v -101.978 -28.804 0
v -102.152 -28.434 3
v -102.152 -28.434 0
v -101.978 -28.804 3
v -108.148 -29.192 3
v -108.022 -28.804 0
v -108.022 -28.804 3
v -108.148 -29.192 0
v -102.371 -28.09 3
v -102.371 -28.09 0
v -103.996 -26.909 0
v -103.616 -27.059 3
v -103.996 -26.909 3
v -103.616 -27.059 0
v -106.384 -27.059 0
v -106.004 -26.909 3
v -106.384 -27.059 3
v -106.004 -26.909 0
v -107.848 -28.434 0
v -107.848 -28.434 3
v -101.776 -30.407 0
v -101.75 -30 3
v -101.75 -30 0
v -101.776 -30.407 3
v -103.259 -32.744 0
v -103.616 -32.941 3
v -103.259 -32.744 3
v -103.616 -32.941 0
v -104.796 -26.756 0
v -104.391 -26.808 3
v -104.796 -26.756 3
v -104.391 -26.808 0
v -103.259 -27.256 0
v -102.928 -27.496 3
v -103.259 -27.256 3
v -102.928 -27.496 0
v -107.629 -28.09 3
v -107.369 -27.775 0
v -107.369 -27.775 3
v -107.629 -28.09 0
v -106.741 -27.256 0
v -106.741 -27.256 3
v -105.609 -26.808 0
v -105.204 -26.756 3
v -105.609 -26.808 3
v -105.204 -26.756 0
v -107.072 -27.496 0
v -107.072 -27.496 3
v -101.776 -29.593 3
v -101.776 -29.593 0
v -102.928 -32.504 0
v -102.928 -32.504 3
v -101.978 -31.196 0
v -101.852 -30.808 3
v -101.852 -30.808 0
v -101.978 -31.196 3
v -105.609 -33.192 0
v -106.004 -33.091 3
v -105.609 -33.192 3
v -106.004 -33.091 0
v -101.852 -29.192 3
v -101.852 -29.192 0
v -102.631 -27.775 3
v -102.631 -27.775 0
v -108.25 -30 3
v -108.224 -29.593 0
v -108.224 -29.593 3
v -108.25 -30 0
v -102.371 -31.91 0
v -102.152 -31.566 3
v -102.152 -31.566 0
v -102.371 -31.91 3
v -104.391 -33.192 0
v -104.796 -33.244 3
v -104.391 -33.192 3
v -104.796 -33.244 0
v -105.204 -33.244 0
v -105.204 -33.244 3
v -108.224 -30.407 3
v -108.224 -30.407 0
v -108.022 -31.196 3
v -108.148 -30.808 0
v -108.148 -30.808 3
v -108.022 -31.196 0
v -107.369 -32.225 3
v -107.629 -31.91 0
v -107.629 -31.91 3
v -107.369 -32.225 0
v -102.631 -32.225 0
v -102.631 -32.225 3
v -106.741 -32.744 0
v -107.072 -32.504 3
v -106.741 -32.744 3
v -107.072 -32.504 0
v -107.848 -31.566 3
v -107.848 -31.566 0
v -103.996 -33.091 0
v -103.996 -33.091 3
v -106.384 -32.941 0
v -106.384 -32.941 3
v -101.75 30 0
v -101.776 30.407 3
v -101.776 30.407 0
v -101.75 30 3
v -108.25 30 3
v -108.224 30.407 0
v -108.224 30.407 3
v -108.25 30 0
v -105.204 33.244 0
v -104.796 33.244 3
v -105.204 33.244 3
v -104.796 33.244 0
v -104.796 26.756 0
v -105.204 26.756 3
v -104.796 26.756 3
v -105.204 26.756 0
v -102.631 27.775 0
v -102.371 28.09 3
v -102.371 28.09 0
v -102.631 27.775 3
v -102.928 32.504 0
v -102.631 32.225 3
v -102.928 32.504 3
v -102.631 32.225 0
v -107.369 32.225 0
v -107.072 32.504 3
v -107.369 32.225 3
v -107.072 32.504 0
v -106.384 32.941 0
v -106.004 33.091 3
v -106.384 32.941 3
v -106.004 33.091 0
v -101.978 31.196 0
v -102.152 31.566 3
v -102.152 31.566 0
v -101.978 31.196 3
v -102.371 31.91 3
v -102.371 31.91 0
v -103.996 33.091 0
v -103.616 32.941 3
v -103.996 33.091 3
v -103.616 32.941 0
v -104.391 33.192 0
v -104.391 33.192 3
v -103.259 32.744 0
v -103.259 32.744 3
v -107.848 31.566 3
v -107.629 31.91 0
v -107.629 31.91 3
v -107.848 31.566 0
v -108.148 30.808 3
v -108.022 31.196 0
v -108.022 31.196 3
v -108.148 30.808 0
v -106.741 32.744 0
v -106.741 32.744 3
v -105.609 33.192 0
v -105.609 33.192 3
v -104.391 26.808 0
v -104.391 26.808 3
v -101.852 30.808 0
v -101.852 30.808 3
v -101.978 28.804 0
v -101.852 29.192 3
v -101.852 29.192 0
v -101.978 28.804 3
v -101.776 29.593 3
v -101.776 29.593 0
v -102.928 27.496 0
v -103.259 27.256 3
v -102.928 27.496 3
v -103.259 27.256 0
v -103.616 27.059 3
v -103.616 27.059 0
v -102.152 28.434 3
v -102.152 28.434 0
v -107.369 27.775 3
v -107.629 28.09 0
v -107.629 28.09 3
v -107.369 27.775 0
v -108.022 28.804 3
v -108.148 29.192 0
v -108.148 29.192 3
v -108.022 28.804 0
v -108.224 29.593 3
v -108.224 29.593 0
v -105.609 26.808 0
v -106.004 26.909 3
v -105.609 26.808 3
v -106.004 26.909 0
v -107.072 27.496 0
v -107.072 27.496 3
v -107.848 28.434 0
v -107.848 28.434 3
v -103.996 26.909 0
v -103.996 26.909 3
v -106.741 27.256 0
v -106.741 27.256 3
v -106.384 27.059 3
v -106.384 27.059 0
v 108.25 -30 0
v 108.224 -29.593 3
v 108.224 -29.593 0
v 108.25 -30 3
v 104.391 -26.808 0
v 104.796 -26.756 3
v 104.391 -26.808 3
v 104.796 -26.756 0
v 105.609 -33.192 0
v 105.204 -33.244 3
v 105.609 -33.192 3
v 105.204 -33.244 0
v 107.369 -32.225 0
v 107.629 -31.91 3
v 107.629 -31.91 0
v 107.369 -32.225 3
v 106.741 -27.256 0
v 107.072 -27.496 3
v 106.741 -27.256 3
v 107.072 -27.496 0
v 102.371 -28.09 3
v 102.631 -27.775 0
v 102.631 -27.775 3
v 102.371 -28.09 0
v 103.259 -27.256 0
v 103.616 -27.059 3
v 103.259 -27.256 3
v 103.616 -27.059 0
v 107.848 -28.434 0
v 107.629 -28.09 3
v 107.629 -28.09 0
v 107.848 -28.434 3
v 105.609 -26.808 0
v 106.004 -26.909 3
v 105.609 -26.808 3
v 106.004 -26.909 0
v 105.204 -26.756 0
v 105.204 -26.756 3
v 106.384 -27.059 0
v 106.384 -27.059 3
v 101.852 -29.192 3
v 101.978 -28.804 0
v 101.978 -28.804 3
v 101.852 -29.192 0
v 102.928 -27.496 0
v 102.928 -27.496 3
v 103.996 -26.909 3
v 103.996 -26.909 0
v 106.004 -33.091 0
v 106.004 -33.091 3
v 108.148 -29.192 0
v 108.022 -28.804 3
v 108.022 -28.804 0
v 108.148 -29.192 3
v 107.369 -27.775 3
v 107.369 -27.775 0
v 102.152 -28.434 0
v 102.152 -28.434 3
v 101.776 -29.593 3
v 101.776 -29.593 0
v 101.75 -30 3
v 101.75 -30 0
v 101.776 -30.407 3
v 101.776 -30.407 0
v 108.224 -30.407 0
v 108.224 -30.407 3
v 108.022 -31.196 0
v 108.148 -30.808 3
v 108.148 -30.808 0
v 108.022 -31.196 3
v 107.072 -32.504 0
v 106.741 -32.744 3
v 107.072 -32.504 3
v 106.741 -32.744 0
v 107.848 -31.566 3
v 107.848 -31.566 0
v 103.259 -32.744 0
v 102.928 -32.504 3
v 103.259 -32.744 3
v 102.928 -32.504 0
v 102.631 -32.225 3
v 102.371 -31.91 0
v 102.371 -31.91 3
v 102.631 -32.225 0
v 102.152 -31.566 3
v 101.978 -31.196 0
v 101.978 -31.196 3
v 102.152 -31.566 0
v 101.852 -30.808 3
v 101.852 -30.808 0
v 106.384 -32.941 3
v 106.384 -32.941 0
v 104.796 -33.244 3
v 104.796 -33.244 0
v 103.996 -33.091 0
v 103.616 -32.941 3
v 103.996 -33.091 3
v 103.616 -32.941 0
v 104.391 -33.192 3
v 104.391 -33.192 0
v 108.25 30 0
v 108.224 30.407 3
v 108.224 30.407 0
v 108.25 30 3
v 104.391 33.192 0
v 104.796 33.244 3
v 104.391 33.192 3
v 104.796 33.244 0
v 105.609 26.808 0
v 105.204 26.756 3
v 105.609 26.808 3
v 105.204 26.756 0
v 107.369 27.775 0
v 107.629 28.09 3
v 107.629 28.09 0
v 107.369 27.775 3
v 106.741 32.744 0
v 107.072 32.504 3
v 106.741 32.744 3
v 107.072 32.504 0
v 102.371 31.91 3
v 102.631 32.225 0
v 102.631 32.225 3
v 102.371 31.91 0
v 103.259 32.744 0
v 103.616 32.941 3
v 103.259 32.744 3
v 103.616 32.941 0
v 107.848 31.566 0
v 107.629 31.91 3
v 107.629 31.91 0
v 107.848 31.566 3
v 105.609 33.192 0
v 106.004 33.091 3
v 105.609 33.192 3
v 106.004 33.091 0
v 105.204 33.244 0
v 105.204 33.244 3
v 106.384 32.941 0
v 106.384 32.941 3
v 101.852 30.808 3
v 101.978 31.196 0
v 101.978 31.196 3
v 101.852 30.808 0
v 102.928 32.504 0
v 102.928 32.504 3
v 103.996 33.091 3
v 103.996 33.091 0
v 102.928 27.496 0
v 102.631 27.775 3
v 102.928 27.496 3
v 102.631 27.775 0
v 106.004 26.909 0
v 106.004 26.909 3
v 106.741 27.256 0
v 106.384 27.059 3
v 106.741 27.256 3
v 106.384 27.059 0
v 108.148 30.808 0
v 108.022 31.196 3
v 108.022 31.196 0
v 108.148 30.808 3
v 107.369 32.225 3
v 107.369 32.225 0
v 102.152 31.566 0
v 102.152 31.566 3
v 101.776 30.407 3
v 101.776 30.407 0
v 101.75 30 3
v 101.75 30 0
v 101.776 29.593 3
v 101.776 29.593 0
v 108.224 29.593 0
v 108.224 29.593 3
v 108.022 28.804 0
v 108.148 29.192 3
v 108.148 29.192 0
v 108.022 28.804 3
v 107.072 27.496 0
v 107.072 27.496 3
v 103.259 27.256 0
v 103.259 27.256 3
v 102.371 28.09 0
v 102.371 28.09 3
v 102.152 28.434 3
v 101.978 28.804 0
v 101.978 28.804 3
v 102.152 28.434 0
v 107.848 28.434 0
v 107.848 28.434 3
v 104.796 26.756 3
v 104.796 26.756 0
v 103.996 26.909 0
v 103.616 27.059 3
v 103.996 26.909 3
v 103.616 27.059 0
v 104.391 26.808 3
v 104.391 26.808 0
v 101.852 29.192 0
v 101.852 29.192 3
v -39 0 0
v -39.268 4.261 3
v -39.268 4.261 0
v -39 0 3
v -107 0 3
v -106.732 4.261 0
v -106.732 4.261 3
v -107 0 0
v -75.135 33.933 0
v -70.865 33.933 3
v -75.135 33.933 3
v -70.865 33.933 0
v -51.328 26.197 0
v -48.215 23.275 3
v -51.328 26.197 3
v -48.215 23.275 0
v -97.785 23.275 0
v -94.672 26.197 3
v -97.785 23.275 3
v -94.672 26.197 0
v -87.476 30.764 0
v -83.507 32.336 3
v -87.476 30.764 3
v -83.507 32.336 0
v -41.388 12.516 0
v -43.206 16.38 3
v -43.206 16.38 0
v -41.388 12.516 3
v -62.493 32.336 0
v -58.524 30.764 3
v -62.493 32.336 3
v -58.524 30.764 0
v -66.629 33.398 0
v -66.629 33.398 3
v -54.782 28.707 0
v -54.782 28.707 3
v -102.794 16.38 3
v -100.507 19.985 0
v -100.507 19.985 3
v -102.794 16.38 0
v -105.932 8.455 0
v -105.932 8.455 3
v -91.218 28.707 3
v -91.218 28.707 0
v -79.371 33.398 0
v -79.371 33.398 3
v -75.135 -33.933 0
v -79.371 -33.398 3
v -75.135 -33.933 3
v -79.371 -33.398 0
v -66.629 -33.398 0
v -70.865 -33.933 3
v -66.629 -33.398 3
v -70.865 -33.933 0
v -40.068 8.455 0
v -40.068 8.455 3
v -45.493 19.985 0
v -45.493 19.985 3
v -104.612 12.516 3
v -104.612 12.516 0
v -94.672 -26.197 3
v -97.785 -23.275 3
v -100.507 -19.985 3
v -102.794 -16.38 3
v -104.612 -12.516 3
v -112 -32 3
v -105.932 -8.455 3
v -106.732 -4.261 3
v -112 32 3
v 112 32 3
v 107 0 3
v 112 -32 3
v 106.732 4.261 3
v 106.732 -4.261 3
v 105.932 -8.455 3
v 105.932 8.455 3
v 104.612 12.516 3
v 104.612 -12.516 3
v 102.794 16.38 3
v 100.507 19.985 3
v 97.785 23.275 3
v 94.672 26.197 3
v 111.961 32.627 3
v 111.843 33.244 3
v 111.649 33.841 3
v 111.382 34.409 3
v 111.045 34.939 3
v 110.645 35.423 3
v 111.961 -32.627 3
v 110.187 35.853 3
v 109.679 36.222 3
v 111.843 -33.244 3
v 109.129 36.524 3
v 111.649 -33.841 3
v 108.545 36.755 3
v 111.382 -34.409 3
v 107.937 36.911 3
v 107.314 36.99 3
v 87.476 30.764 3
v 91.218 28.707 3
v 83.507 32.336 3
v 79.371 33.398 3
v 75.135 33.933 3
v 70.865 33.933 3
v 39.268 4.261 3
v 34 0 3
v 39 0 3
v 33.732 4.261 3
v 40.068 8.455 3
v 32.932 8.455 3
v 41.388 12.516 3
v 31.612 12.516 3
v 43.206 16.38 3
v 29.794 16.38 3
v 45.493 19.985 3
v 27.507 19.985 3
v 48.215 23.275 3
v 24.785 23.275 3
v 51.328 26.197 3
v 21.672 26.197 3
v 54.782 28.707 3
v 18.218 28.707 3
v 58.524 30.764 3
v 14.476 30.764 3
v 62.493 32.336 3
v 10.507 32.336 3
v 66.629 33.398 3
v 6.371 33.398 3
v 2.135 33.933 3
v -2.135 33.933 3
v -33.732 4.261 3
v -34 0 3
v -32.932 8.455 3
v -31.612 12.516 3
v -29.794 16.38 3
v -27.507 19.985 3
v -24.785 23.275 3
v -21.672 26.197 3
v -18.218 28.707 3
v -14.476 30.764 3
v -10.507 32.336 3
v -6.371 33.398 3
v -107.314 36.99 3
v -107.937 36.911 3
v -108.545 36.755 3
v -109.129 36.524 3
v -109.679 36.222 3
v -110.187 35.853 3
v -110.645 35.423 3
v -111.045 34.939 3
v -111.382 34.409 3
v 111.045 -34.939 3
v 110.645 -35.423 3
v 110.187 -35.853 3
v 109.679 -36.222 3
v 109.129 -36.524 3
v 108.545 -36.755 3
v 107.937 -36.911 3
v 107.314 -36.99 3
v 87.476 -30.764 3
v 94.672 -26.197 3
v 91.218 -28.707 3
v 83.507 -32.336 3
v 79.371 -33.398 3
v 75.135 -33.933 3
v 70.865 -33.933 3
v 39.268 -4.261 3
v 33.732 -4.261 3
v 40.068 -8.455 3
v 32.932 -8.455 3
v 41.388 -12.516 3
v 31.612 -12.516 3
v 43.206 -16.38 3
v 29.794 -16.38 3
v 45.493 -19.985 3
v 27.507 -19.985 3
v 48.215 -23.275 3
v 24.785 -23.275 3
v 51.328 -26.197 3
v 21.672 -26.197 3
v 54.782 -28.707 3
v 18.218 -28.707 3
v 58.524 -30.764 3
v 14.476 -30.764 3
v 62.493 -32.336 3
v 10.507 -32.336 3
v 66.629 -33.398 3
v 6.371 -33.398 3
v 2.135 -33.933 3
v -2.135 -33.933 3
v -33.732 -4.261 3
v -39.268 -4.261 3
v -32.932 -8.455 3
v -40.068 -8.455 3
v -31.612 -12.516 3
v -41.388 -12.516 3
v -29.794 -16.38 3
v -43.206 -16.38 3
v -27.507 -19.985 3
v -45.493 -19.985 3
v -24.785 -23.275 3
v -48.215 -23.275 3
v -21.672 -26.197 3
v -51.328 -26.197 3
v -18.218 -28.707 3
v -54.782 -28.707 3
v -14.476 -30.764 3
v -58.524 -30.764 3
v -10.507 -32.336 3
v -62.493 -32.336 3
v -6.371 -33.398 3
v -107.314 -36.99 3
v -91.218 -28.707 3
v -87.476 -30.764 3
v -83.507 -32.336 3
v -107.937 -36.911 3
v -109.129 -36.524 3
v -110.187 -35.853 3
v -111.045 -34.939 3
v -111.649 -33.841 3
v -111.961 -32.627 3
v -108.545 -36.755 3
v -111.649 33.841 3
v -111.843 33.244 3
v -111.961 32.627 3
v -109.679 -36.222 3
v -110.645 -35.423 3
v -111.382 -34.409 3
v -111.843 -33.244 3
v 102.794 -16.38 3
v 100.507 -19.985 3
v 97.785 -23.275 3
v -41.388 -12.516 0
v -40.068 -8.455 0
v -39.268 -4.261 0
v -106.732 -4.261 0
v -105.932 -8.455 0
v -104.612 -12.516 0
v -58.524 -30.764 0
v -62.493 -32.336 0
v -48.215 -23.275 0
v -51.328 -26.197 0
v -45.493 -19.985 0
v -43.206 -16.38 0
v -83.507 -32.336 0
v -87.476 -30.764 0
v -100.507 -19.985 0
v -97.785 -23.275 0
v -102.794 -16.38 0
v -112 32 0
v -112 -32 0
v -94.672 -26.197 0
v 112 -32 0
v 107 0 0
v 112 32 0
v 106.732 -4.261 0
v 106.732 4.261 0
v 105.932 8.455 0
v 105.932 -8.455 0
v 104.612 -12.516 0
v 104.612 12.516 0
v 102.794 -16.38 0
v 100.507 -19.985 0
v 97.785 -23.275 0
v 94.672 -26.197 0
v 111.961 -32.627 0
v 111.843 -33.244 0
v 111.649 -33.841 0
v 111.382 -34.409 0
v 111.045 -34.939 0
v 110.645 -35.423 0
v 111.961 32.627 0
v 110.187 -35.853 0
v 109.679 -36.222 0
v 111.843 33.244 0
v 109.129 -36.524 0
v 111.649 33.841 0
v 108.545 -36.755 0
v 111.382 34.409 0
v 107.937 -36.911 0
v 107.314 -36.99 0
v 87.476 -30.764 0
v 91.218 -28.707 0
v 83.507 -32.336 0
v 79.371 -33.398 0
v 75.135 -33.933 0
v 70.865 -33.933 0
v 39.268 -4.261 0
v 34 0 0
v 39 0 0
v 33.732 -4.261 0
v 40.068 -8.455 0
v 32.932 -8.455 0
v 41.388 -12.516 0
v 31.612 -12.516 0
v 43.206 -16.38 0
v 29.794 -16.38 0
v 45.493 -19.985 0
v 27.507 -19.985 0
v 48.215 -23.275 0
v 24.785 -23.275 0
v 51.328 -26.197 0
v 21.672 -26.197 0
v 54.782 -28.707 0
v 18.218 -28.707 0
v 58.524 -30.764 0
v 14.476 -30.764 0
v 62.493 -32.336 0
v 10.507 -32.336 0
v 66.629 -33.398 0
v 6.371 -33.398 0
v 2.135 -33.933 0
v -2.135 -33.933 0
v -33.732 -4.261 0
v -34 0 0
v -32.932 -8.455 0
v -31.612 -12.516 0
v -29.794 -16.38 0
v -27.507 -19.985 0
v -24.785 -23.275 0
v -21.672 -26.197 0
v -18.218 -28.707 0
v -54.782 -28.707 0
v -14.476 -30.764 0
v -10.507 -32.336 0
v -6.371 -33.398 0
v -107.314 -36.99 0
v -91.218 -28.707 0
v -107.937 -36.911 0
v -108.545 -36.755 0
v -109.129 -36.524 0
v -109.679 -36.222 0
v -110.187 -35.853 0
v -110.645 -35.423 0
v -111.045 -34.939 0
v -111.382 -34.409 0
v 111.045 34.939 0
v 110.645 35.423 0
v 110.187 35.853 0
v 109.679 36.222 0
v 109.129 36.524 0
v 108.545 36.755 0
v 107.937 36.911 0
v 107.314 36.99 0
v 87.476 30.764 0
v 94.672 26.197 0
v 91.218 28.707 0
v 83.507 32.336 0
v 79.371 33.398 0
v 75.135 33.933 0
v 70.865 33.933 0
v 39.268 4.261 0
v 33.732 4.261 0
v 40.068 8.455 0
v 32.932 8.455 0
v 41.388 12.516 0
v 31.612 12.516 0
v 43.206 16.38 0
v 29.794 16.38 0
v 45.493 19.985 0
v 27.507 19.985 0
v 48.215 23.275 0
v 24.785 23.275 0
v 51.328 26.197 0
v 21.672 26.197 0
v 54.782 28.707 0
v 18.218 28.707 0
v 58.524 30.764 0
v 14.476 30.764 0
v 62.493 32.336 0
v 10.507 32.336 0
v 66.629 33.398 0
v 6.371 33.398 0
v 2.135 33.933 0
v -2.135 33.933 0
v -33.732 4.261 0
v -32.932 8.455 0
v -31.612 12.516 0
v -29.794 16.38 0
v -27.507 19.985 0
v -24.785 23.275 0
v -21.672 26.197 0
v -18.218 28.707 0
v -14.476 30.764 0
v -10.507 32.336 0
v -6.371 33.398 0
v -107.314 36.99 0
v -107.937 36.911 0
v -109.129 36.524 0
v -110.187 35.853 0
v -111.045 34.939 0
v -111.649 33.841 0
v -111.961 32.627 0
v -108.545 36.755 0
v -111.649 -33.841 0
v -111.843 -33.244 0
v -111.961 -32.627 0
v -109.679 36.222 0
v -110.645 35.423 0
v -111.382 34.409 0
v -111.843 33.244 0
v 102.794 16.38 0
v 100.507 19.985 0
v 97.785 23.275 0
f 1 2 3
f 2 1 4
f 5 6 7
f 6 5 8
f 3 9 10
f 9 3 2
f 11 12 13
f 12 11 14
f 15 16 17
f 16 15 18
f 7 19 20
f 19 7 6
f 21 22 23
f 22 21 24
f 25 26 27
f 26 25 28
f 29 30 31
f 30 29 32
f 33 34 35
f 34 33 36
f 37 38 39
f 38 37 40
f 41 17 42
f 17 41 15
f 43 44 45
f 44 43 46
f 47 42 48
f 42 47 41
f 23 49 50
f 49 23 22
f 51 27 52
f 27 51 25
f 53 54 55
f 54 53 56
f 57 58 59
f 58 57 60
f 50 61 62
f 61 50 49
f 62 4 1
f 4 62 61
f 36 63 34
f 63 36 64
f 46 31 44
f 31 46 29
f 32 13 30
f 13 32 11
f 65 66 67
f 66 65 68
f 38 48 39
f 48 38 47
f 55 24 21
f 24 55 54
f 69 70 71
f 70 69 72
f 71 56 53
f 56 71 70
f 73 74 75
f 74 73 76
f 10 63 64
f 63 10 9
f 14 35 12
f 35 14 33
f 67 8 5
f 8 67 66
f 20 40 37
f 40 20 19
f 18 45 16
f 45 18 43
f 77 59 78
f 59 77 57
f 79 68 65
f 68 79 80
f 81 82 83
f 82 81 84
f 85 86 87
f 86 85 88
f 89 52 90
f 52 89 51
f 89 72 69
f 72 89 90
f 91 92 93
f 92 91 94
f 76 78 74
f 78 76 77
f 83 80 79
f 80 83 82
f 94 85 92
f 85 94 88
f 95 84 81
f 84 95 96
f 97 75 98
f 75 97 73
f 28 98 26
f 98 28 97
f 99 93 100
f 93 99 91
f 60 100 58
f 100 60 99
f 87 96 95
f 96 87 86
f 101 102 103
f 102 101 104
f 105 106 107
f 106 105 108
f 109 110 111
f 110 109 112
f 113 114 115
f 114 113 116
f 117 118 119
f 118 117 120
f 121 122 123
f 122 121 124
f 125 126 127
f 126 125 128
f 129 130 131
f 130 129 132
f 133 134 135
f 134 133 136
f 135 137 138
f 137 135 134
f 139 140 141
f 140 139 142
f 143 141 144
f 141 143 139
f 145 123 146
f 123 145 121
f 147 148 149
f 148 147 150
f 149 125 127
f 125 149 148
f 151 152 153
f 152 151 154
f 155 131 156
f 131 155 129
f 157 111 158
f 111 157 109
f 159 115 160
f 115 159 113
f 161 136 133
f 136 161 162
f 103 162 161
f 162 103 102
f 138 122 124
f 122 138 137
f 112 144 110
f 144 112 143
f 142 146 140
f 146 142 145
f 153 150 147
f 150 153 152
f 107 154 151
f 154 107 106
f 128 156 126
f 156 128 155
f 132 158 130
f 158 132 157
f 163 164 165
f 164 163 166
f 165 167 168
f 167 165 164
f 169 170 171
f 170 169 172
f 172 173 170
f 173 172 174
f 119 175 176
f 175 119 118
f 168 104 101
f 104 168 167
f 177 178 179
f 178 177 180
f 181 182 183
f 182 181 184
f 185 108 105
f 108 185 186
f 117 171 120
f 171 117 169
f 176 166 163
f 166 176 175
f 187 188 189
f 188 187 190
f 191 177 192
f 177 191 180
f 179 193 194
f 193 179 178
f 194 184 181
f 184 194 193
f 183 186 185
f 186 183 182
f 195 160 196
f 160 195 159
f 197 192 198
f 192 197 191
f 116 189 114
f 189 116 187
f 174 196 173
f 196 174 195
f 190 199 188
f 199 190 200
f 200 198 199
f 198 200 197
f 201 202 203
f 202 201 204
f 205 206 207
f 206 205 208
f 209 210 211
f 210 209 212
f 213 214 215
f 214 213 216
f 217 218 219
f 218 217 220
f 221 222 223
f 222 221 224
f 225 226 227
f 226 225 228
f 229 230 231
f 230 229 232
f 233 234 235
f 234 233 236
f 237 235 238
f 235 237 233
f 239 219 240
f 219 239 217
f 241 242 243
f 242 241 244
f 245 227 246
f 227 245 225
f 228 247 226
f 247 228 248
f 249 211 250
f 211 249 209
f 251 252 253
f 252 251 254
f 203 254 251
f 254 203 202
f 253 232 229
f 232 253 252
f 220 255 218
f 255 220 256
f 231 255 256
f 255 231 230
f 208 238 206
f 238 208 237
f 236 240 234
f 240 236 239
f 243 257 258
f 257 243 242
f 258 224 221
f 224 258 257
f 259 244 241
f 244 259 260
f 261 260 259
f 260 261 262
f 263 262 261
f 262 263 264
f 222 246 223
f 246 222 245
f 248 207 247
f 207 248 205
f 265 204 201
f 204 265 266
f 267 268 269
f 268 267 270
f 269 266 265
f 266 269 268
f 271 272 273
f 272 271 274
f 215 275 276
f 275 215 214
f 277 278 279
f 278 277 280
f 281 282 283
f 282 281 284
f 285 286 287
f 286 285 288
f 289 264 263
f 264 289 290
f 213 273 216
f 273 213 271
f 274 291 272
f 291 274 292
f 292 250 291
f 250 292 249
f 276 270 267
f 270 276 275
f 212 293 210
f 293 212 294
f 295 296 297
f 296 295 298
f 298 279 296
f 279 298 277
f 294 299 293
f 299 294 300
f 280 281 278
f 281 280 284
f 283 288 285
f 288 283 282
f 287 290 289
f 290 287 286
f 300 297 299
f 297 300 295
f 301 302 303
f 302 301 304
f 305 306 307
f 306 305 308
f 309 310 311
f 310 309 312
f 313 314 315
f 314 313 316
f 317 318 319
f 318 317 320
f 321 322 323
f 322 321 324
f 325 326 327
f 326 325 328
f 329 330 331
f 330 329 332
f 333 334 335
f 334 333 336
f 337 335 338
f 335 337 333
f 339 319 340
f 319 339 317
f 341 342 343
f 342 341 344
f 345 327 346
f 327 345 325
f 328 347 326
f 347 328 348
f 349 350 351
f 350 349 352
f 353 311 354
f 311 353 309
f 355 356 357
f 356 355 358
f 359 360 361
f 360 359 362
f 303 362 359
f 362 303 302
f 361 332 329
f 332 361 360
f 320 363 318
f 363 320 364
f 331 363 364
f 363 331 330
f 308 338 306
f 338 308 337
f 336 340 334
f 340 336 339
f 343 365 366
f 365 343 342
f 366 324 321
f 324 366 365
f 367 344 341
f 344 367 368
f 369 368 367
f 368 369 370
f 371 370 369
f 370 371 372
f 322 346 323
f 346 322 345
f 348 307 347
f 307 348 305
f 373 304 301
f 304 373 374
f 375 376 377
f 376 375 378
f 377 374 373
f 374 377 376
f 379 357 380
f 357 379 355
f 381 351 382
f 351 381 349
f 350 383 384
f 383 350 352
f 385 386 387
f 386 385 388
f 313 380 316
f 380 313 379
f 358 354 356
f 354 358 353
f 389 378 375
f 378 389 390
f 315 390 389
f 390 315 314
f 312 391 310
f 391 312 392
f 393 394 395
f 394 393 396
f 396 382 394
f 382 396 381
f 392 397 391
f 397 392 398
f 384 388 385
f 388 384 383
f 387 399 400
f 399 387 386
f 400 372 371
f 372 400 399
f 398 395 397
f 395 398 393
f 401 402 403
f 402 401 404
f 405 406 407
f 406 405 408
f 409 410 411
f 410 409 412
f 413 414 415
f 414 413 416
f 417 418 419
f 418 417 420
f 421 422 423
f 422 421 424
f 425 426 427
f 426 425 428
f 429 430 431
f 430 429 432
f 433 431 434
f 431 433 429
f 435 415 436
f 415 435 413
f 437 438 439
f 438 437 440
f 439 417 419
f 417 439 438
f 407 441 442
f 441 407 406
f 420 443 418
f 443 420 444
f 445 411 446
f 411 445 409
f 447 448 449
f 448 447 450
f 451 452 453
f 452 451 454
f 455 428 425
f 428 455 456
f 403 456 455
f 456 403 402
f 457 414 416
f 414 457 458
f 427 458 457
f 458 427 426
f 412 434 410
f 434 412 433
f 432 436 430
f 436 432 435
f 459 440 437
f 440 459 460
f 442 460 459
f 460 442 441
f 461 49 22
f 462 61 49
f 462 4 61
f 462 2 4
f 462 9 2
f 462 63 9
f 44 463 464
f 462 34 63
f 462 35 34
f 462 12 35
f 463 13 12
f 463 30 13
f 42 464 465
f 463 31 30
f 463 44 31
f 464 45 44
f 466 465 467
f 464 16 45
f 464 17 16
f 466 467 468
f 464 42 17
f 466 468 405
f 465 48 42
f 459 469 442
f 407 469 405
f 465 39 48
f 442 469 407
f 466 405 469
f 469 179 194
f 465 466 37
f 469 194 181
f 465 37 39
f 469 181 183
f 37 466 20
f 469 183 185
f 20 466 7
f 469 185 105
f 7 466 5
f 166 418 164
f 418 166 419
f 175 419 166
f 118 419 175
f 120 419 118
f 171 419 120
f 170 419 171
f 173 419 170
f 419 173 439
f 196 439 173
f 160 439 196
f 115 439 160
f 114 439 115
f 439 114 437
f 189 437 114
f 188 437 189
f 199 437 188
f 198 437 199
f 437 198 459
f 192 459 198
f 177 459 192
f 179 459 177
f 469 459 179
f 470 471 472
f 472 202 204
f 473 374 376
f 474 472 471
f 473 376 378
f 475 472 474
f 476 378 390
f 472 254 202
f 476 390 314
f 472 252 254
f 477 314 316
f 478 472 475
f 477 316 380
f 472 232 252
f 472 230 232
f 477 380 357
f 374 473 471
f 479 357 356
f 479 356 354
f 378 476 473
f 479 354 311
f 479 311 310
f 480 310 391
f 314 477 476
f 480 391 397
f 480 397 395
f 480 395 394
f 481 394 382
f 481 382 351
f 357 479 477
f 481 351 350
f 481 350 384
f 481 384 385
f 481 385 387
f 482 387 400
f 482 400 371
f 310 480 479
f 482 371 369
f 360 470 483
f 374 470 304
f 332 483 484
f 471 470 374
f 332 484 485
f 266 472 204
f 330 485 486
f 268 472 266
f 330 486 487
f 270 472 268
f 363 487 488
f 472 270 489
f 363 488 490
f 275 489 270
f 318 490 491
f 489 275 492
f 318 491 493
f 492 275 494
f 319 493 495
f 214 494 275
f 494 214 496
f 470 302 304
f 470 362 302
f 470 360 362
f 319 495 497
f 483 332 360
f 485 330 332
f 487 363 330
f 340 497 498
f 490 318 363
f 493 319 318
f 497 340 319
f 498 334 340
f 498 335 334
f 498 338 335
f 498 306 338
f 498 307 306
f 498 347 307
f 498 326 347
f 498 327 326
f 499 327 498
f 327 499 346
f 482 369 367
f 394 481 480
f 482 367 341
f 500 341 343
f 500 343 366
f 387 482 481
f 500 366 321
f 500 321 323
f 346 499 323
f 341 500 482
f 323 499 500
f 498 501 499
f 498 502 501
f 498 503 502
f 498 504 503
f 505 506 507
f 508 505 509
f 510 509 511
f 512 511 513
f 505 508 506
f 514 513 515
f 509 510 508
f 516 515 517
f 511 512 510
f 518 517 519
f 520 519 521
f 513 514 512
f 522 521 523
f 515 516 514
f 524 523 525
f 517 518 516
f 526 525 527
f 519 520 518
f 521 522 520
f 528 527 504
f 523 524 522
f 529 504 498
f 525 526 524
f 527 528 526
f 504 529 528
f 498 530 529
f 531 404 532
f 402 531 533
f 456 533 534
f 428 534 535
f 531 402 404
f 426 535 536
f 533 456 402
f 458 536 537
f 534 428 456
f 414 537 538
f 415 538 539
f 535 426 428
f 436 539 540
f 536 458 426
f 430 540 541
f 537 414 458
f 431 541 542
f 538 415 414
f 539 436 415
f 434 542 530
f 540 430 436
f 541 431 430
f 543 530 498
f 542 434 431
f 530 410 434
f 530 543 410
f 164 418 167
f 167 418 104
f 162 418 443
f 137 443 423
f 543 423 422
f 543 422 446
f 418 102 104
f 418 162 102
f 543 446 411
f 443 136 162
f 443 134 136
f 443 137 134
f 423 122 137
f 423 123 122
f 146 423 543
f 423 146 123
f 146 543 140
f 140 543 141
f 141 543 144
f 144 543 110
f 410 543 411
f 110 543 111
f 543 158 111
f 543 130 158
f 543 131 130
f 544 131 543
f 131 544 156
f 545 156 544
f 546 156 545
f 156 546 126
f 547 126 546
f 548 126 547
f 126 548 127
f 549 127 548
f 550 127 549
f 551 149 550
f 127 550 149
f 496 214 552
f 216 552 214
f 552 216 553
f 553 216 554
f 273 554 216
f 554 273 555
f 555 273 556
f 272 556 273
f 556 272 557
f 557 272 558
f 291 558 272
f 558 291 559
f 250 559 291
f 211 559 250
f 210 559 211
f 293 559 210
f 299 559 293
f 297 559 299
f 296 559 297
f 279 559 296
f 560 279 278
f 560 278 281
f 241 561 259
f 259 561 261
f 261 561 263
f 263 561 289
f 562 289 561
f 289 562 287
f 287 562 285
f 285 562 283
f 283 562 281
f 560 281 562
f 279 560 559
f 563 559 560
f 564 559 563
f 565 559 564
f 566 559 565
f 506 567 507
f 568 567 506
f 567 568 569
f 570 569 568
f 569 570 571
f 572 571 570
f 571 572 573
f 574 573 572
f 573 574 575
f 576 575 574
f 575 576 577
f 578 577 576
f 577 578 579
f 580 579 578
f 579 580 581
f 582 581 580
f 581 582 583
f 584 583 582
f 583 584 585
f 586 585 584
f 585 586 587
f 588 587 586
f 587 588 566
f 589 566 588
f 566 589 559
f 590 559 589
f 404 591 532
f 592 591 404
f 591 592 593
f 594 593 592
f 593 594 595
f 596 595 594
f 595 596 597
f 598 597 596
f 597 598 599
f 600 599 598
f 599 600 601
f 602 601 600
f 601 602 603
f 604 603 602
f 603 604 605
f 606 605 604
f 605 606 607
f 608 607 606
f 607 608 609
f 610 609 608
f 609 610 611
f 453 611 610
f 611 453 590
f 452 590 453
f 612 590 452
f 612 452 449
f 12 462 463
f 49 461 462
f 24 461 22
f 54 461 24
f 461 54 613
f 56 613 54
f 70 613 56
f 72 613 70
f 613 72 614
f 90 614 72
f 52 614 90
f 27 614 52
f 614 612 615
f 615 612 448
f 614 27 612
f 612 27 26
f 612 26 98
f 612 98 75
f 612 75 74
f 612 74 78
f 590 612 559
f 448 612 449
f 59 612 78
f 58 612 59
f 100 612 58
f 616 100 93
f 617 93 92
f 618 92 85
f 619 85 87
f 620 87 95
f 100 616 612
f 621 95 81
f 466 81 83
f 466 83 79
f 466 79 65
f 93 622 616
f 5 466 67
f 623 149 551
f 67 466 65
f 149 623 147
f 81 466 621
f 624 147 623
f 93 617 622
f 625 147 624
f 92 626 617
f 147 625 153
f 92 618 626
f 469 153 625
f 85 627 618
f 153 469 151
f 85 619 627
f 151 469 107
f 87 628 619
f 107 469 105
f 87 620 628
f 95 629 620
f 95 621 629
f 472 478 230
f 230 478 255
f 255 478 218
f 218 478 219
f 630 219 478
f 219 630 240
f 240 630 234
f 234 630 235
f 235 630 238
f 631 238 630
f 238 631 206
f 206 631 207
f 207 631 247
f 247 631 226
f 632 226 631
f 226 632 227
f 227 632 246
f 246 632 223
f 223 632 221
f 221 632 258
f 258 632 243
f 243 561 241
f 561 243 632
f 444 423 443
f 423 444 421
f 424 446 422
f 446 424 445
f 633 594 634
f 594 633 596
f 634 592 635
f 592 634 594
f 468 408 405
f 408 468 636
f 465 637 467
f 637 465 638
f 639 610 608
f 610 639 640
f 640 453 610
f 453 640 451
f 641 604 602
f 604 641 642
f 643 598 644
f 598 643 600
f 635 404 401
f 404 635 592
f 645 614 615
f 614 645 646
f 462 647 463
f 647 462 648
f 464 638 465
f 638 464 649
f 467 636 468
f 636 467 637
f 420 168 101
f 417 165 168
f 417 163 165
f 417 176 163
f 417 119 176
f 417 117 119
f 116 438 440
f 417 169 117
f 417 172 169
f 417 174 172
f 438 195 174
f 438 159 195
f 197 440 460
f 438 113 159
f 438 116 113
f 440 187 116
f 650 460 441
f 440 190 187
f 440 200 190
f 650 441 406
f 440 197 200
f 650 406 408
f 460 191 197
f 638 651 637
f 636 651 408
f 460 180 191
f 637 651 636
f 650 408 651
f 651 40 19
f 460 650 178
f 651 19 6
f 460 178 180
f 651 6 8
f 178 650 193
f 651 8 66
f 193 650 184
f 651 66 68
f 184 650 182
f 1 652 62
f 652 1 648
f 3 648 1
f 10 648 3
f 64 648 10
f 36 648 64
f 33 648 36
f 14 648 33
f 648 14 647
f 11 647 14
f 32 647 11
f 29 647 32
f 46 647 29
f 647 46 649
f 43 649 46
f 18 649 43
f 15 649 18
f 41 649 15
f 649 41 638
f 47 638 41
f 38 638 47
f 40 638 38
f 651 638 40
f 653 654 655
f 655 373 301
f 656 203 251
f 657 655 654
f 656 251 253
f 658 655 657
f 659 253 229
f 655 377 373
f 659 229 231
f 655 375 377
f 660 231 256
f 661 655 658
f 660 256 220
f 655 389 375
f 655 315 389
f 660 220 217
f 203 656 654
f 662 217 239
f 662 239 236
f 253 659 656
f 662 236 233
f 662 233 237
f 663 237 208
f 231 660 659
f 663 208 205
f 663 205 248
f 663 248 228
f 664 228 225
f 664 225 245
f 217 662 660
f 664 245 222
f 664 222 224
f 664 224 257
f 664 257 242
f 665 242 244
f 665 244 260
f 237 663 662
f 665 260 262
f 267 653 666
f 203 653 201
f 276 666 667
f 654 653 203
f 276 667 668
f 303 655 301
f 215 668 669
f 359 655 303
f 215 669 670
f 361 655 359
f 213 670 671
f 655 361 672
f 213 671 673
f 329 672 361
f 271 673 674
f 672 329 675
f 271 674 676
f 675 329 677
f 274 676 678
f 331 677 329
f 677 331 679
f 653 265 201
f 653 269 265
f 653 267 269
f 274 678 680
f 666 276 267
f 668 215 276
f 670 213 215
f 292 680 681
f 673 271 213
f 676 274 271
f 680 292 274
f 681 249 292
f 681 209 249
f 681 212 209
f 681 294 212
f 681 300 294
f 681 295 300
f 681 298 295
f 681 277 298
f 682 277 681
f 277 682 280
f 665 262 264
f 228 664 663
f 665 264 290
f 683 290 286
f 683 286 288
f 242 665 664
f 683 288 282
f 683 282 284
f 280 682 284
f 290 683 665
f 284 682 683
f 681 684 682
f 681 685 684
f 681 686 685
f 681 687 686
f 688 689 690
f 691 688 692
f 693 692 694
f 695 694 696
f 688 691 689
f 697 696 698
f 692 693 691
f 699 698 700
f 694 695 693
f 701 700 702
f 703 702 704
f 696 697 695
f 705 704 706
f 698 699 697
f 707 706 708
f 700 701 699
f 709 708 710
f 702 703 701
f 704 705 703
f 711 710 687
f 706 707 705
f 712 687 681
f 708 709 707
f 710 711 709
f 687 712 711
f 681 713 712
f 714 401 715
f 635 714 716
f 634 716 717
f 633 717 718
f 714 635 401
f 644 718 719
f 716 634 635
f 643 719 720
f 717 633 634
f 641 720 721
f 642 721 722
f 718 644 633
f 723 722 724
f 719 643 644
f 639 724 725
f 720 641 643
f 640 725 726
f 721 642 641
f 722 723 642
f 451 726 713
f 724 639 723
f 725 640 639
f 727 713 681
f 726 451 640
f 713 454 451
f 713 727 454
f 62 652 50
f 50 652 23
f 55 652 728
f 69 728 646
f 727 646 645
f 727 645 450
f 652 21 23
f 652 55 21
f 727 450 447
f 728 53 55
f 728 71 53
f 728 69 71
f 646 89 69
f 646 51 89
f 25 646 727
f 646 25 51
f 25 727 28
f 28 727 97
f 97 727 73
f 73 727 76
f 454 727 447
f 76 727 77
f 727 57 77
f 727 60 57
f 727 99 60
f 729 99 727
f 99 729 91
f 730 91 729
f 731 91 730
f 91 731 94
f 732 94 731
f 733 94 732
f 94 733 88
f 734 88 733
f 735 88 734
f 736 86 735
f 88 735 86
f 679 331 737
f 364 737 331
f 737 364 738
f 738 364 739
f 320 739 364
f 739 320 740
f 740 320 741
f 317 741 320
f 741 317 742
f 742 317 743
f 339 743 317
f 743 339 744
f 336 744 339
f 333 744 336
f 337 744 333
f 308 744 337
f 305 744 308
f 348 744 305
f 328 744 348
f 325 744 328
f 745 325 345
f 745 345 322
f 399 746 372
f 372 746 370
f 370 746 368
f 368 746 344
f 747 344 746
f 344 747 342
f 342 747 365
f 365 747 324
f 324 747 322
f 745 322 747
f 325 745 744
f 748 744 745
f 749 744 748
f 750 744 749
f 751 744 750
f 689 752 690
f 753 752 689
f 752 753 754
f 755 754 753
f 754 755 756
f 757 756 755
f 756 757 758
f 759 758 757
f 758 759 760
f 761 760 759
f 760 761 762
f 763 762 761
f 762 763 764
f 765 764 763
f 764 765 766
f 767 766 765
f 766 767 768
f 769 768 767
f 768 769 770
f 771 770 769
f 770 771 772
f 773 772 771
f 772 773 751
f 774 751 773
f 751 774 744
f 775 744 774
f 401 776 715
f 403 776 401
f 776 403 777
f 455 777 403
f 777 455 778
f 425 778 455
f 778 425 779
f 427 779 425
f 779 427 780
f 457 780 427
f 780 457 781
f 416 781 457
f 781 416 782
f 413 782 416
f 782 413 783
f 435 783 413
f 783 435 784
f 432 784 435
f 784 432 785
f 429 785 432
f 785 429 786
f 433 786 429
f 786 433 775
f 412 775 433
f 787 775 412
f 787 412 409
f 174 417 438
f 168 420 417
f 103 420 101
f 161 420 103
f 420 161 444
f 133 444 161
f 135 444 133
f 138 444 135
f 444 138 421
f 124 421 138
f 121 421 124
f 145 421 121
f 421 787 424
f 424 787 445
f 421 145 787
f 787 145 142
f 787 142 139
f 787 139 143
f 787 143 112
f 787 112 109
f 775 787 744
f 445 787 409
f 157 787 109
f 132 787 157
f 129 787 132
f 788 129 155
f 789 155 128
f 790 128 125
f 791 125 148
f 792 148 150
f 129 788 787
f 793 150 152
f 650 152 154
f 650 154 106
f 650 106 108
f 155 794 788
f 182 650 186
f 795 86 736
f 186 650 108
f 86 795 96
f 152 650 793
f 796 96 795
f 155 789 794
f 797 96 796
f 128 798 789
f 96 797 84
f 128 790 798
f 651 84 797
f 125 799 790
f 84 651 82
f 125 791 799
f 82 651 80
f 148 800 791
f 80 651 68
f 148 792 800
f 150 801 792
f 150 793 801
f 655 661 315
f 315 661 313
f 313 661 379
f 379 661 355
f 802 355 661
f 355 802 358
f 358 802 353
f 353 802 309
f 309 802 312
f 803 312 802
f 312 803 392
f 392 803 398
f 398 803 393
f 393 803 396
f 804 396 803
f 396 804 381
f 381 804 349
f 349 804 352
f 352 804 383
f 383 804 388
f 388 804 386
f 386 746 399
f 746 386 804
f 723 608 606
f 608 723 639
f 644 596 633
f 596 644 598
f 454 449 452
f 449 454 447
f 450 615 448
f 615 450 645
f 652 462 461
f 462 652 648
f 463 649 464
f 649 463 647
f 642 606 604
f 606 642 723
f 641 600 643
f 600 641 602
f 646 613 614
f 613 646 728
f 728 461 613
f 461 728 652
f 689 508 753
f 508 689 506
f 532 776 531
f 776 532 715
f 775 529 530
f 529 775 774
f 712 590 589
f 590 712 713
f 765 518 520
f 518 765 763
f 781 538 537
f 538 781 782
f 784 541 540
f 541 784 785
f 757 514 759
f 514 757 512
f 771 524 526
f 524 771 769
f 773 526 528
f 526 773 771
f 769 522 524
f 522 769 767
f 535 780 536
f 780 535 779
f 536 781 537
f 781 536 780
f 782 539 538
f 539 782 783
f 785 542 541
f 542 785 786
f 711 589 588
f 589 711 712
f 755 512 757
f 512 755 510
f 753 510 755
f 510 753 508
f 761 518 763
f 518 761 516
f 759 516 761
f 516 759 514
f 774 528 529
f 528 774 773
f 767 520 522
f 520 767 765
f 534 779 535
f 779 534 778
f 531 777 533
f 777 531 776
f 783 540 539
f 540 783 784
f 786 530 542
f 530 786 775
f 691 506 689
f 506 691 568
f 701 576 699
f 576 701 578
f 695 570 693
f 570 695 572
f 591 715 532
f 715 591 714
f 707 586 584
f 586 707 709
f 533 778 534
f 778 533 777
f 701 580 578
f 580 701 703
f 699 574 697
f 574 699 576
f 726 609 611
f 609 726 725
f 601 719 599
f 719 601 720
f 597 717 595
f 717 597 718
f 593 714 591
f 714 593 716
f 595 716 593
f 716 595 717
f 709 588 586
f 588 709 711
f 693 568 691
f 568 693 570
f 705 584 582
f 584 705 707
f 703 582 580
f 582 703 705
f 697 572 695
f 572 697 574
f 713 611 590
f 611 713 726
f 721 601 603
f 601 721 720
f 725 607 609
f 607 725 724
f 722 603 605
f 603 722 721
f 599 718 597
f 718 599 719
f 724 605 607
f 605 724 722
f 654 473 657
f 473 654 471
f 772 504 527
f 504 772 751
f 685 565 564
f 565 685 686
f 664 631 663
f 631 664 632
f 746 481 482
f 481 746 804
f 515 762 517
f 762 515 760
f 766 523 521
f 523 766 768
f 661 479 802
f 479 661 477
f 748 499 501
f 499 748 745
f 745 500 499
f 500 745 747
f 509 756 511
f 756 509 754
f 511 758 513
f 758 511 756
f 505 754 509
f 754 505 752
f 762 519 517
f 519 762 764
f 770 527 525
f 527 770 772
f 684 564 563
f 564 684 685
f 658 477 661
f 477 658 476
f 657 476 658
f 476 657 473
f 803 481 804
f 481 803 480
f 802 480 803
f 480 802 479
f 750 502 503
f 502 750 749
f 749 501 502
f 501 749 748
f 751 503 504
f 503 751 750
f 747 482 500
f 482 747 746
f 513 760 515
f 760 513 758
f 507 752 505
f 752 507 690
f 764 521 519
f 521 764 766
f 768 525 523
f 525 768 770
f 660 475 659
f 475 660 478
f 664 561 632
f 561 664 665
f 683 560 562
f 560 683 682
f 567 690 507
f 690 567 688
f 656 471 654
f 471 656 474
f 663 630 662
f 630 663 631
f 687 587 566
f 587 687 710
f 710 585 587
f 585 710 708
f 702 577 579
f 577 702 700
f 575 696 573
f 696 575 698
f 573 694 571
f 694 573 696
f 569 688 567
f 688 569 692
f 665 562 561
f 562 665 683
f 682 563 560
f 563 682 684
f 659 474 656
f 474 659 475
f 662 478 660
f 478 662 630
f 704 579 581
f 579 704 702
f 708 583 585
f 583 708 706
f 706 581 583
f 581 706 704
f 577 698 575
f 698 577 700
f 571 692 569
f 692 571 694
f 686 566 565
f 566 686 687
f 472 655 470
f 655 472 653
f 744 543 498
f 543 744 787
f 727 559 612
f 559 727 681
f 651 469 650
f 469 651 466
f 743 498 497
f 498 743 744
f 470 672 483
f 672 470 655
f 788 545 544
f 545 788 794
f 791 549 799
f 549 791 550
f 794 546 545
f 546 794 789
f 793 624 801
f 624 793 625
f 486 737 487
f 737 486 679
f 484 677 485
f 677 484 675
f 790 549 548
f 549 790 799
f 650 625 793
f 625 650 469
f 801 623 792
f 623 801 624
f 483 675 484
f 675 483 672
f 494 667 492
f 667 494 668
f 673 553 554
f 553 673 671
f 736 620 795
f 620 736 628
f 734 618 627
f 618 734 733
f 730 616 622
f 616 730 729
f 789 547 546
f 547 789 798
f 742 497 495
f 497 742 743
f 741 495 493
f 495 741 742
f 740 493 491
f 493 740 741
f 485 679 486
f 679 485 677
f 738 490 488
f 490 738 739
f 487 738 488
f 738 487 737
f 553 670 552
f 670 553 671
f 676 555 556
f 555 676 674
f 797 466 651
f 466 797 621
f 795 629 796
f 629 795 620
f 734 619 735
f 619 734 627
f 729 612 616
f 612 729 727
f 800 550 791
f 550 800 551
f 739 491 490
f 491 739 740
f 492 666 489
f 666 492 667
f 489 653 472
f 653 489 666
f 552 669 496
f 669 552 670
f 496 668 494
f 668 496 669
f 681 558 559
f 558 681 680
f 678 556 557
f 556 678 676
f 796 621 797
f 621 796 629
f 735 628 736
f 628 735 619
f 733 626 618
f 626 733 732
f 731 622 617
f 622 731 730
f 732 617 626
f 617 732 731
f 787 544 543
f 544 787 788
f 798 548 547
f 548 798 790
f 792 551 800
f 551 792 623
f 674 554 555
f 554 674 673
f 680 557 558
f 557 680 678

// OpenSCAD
$fn = 50;


difference() {
	union() {
		hull() {
			translate(v = [-107.0000000000, 32.0000000000, 0]) {
				cylinder(h = 3, r = 5);
			}
			translate(v = [107.0000000000, 32.0000000000, 0]) {
				cylinder(h = 3, r = 5);
			}
			translate(v = [-107.0000000000, -32.0000000000, 0]) {
				cylinder(h = 3, r = 5);
			}
			translate(v = [107.0000000000, -32.0000000000, 0]) {
				cylinder(h = 3, r = 5);
			}
		}
	}
	union() {
		#translate(v = [-105.0000000000, -30.0000000000, -100.0000000000]) {
			cylinder(h = 200, r = 3.2500000000);
		}
		#translate(v = [-105.0000000000, 30.0000000000, -100.0000000000]) {
			cylinder(h = 200, r = 3.2500000000);
		}
		#translate(v = [105.0000000000, -30.0000000000, -100.0000000000]) {
			cylinder(h = 200, r = 3.2500000000);
		}
		#translate(v = [105.0000000000, 30.0000000000, -100.0000000000]) {
			cylinder(h = 200, r = 3.2500000000);
		}
		#translate(v = [-73.0000000000, 0, 0]) {
			cylinder(h = 3, r = 34.0000000000);
		}
		#cylinder(h = 3, r = 34.0000000000);
		#translate(v = [73.0000000000, 0, 0]) {
			cylinder(h = 3, r = 34.0000000000);
		}
	}
}
